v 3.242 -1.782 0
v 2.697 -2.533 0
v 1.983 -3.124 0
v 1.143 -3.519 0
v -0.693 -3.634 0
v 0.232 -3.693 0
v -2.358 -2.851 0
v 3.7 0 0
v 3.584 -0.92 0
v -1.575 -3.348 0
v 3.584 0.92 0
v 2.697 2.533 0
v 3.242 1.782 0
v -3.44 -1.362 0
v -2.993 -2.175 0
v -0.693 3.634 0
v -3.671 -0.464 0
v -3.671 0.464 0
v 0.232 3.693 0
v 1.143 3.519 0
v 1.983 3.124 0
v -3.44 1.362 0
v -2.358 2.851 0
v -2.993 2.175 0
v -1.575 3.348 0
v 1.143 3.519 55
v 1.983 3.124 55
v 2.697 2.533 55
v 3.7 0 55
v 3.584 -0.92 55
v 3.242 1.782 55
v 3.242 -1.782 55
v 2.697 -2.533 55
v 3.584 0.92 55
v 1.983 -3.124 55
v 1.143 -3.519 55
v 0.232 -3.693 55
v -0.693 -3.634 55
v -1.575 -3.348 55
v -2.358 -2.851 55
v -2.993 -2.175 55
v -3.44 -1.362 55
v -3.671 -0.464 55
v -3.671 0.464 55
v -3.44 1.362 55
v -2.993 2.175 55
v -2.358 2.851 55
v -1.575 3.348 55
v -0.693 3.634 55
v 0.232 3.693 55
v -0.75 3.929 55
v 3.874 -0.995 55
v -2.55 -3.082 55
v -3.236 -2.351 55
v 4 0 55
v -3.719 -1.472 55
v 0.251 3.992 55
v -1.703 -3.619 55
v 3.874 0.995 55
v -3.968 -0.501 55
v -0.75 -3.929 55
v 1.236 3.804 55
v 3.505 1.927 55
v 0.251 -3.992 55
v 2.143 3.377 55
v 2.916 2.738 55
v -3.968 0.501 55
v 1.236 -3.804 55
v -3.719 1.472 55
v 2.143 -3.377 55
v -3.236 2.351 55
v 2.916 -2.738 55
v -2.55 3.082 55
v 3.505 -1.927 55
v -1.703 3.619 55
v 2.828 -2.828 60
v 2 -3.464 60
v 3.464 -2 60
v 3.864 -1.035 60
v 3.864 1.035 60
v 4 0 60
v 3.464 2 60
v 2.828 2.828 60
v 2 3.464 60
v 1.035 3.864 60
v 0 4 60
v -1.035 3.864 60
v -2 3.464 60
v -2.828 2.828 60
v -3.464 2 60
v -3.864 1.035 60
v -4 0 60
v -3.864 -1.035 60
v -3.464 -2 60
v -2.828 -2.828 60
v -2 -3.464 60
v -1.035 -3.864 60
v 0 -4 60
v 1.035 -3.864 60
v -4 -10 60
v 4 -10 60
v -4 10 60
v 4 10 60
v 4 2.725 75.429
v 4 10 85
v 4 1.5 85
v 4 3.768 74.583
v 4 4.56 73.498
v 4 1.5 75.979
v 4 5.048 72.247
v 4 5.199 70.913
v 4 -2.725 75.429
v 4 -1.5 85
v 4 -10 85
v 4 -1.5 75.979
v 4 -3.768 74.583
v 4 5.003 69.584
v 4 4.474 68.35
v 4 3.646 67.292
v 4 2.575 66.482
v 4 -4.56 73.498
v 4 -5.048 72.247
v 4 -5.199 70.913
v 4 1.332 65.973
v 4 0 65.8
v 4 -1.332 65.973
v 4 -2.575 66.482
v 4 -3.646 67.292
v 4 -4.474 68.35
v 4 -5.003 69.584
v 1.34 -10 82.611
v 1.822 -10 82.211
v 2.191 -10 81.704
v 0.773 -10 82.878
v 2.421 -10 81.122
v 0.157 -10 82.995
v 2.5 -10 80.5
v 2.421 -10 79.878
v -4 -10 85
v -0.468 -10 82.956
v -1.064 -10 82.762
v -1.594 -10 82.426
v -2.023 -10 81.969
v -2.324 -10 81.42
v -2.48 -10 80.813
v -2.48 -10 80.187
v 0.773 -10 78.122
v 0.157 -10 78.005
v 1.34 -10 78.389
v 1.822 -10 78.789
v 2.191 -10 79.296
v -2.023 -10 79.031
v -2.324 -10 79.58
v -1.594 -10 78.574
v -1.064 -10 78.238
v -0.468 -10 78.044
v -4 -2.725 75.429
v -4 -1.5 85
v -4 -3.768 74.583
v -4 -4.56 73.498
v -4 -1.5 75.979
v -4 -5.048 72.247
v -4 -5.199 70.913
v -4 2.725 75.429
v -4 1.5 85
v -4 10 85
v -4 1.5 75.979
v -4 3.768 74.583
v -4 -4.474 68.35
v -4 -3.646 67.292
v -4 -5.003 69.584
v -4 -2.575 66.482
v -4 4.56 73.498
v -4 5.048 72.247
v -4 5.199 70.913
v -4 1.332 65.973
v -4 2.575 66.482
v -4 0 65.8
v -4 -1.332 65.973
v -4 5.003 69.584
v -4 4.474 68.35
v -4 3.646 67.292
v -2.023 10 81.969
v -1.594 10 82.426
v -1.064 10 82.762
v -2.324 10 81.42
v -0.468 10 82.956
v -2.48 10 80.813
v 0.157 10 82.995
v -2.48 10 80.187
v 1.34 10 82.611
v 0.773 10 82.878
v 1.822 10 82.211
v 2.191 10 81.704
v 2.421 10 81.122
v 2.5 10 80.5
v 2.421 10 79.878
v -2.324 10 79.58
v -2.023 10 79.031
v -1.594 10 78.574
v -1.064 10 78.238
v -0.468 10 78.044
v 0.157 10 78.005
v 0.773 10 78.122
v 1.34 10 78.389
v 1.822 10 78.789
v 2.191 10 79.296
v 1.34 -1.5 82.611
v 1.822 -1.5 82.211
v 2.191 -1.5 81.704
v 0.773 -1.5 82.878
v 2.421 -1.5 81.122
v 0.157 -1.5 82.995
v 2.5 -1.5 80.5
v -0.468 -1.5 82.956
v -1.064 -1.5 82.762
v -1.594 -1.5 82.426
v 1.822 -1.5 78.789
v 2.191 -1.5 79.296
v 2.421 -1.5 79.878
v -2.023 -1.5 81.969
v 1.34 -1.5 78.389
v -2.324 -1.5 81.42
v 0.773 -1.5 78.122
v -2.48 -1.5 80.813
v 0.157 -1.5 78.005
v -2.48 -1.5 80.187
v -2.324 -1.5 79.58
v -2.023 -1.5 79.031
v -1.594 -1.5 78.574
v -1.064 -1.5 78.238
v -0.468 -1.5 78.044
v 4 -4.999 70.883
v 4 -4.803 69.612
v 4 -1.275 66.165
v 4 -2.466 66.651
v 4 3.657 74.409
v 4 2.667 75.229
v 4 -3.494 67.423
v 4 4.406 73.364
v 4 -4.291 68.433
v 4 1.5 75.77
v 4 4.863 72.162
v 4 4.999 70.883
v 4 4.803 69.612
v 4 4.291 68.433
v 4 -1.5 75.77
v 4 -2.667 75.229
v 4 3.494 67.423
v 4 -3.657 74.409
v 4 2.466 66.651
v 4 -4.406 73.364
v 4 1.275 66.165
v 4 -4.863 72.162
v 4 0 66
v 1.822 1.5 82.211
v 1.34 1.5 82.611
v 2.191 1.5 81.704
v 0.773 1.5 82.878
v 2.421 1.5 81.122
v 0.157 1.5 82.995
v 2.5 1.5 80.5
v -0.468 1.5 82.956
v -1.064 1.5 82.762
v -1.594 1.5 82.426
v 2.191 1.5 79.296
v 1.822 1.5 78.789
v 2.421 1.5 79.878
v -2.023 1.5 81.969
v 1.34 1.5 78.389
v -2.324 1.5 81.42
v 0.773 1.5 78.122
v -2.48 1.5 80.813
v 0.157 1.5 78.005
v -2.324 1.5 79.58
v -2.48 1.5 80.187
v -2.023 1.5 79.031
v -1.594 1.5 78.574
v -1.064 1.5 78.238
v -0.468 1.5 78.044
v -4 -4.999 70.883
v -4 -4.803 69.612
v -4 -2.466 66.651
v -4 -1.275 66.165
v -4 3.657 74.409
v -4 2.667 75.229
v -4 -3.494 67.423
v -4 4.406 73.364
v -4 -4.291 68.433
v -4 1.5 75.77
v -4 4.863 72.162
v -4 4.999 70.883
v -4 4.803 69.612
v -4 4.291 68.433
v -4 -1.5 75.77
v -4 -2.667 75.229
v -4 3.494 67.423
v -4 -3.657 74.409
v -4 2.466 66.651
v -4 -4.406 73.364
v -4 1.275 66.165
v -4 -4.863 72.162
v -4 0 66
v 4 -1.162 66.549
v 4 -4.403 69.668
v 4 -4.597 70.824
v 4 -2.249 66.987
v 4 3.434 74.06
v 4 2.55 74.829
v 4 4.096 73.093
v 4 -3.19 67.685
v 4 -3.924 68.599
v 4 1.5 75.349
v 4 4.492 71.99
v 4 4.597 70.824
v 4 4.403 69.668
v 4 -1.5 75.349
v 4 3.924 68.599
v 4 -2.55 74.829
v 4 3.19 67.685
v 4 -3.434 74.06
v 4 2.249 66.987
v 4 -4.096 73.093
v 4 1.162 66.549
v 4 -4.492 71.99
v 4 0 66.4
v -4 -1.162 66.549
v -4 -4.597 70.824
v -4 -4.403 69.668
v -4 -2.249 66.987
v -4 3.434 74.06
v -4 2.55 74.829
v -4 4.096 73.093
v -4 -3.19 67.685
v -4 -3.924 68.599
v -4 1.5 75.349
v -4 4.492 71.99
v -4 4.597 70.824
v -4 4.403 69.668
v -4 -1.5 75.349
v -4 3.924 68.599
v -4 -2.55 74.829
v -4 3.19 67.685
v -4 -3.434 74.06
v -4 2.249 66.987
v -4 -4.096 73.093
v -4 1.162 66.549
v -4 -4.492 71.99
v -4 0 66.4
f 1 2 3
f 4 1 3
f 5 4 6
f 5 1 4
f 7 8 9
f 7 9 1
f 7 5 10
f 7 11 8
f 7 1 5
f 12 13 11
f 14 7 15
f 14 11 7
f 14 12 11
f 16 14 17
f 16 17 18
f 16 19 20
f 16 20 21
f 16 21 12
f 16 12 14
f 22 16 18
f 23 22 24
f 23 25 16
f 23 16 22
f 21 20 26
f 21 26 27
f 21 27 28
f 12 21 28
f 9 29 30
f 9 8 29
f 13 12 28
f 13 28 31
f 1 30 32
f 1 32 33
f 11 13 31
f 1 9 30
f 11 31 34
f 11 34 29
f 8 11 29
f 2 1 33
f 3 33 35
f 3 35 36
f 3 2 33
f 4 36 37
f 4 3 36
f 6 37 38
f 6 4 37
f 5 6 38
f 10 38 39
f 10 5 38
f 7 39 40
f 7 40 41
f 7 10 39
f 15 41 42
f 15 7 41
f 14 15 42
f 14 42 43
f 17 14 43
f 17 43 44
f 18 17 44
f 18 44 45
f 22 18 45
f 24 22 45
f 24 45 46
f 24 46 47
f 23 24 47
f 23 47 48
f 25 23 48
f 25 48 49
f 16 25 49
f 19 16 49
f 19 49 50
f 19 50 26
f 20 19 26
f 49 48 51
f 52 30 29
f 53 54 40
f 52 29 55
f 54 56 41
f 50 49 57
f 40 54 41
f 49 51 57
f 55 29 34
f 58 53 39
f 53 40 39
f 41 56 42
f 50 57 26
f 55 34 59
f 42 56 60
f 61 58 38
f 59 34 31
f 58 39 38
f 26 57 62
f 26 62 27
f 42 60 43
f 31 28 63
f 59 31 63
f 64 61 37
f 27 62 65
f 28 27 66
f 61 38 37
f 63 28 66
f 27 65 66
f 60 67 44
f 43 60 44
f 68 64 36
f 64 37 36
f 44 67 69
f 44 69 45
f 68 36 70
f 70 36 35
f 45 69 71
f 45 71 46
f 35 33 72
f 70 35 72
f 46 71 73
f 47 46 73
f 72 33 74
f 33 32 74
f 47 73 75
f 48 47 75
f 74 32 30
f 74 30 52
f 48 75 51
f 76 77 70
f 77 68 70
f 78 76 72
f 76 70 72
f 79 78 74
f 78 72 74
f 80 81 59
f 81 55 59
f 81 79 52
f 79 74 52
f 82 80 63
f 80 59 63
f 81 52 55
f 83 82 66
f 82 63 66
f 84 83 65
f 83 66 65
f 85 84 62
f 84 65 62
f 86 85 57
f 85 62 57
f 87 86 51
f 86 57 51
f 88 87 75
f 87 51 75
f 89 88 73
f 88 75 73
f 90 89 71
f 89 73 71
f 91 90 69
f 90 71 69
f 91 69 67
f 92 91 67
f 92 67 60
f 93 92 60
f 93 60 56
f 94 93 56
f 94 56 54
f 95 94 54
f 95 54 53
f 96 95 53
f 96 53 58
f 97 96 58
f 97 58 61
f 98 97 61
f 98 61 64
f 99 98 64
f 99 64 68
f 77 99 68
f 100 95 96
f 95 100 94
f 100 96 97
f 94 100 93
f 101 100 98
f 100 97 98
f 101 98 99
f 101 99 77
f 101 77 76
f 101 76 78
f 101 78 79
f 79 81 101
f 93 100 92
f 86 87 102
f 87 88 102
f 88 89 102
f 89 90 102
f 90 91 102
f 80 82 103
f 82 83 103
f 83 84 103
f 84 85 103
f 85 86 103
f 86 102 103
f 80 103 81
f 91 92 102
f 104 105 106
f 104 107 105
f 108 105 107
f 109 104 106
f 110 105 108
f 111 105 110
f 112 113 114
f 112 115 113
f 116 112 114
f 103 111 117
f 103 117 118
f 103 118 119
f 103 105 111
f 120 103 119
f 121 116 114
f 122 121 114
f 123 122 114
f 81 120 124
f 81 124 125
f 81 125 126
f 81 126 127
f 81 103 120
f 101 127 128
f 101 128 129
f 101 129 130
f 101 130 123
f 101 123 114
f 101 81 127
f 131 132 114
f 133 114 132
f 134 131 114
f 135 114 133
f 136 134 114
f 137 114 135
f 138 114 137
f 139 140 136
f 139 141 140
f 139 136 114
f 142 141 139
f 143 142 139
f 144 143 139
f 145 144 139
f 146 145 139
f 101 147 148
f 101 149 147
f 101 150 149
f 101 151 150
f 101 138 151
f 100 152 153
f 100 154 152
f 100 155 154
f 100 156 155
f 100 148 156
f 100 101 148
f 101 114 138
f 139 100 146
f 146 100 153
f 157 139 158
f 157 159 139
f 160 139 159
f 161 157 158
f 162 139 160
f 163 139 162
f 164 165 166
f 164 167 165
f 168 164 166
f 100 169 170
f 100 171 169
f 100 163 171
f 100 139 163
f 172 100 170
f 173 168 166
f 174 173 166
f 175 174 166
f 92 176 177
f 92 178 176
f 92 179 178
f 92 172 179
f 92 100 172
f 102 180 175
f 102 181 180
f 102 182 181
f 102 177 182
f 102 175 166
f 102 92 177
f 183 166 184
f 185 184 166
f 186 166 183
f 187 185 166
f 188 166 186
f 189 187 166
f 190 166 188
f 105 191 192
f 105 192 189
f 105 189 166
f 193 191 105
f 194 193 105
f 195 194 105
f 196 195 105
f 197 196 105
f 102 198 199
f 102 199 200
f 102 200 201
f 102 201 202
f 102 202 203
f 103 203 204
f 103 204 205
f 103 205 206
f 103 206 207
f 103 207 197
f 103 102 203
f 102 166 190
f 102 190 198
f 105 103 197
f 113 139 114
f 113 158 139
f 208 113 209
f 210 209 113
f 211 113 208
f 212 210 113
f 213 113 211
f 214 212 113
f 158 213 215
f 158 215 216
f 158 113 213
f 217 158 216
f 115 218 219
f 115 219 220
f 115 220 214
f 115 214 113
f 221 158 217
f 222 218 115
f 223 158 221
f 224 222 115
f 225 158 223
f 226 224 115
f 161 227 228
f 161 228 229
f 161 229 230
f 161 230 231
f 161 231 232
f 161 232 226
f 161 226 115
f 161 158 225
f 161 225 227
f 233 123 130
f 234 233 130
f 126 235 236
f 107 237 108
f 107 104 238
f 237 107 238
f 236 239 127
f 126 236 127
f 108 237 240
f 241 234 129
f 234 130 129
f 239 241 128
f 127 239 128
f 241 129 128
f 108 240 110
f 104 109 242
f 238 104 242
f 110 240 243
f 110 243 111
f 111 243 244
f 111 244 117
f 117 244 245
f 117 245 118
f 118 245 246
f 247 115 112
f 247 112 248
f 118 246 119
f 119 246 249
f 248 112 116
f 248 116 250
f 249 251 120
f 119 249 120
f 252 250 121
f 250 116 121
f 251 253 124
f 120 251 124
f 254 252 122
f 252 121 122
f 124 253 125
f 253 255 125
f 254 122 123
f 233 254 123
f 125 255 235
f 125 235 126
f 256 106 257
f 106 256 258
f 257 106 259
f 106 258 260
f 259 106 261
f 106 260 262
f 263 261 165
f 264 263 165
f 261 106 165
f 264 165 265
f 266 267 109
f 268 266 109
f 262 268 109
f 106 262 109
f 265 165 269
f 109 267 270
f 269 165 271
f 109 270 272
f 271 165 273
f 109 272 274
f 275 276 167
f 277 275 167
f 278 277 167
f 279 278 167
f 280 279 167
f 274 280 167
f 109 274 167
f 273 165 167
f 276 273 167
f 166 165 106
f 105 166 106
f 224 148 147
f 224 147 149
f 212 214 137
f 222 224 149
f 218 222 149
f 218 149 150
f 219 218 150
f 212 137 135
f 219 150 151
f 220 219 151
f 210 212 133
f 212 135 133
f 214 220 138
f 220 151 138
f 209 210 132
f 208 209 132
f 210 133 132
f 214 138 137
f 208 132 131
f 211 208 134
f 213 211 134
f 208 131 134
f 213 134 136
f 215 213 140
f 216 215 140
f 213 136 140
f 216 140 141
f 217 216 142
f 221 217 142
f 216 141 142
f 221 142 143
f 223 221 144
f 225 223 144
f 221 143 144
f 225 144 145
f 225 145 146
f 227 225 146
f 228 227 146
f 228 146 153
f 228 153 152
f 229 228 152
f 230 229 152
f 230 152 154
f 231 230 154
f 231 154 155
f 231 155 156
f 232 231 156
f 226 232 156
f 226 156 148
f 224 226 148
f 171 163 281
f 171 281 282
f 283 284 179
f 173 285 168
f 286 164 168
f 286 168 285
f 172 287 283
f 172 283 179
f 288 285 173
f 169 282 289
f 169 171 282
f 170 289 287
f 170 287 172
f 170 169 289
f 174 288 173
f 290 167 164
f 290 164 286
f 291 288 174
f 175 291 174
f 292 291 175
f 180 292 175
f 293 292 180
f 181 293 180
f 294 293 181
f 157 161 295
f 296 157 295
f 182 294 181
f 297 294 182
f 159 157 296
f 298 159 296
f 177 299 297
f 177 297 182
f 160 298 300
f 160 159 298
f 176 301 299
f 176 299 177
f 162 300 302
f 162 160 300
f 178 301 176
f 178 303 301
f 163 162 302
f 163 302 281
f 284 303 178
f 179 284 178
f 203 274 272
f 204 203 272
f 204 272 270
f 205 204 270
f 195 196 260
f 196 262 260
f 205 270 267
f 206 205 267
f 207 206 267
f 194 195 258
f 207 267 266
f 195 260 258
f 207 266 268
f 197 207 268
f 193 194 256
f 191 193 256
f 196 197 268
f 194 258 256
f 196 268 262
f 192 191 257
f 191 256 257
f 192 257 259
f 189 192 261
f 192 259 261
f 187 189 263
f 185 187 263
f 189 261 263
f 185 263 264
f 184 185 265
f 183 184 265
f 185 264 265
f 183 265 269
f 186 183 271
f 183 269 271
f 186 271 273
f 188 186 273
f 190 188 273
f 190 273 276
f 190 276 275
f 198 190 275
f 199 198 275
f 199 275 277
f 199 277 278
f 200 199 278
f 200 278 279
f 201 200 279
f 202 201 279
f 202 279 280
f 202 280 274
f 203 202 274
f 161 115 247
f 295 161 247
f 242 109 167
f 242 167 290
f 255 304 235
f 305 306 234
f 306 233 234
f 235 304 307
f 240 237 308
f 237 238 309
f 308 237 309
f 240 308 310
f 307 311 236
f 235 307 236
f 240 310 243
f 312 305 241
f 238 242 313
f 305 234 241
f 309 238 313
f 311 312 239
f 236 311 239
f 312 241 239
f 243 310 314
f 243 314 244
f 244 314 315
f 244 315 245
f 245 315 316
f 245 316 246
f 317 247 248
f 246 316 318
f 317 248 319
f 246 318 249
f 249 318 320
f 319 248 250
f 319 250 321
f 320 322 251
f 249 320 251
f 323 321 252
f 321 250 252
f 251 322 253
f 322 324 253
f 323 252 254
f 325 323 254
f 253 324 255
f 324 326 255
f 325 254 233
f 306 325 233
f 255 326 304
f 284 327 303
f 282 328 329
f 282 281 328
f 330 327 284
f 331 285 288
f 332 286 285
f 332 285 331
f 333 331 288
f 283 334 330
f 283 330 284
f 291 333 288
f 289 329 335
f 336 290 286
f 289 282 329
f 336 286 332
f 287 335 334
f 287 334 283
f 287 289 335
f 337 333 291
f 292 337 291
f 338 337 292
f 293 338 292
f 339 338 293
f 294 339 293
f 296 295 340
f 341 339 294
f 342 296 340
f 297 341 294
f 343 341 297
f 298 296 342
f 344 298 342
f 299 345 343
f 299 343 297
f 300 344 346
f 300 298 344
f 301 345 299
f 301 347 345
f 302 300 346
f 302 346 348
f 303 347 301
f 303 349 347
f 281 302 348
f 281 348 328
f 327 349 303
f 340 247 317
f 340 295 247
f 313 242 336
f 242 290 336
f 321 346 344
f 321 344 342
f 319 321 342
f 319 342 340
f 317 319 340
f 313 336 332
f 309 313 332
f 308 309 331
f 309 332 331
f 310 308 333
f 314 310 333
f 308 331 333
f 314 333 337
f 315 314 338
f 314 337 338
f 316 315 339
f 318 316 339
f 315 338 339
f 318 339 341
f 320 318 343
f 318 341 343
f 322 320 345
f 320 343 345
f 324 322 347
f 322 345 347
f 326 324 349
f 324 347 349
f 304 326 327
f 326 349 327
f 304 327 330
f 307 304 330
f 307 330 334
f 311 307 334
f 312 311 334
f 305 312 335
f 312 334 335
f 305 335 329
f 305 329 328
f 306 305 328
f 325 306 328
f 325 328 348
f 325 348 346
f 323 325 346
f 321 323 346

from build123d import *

# Parameters (mm, degrees)
SKETCH_R        = 4
PAD_DEPTH       = 60
SKETCH001_W     = 8
SKETCH001_H     = 20
PAD001_DEPTH    = 25
POCKET_DEPTH    = 8
SKETCH003_R     = 2.5
POCKET001_DEPTH = 30
SKETCH004_R     = 4
SKETCH004_R_2   = 3.7
POCKET002_DEPTH = 55
PAD002_DEPTH    = 8


with BuildPart() as part:
    # Sketch → Pad (new body)
    with BuildSketch(Plane.XY):
        Circle(SKETCH_R)
    extrude(amount=PAD_DEPTH)

    # Sketch001 → Pad001 (new body)
    with BuildSketch(Plane.XY.offset(60)):
        Rectangle(SKETCH001_W, SKETCH001_H)
    extrude(amount=PAD001_DEPTH)

    # Sketch002 → Pocket (cut)
    with BuildSketch(Plane(origin=(-4, 0, 0), x_dir=(0, -1, 0), z_dir=(-1, 0, 0))):
        with BuildLine():
            ThreePointArc((-1.5, 75.769696), (0, 66), (1.5, 75.769696))
            Line((1.5, 85), (1.5, 75.769696))
            Line((1.5, 85), (-1.5, 85))
            Line((-1.5, 85), (-1.5, 75.769696))
        make_face()
    extrude(amount=-POCKET_DEPTH, mode=Mode.SUBTRACT)

    # Sketch003 → Pocket001 (cut)
    with BuildSketch(Plane.XZ.offset(10)):
        with Locations((0, 80.5)):
            Circle(SKETCH003_R)
    extrude(amount=-POCKET001_DEPTH, mode=Mode.SUBTRACT)

    # Sketch004 → Pocket002 (cut)
    with BuildSketch(Plane(origin=(0, 0, 0), x_dir=(1, 0, 0), z_dir=(0, 0, -1))):
        Circle(SKETCH004_R)
        Circle(SKETCH004_R_2, mode=Mode.SUBTRACT)
    extrude(amount=-POCKET002_DEPTH, mode=Mode.SUBTRACT)

    # Sketch005 → Pad002 (new body)
    with BuildSketch(Plane(origin=(-4, 0, 0), x_dir=(0, -1, 0), z_dir=(-1, 0, 0))):
        with BuildLine():
            ThreePointArc((-1.5, 75.348563), (0, 66.4), (1.5, 75.348563))
            Line((1.5, 75.978956), (1.5, 75.348563))
            ThreePointArc((-1.5, 75.978956), (0, 65.8), (1.5, 75.978956))
            Line((-1.5, 75.978956), (-1.5, 75.348563))
        make_face()
    extrude(amount=-PAD002_DEPTH)


solid = part.part
